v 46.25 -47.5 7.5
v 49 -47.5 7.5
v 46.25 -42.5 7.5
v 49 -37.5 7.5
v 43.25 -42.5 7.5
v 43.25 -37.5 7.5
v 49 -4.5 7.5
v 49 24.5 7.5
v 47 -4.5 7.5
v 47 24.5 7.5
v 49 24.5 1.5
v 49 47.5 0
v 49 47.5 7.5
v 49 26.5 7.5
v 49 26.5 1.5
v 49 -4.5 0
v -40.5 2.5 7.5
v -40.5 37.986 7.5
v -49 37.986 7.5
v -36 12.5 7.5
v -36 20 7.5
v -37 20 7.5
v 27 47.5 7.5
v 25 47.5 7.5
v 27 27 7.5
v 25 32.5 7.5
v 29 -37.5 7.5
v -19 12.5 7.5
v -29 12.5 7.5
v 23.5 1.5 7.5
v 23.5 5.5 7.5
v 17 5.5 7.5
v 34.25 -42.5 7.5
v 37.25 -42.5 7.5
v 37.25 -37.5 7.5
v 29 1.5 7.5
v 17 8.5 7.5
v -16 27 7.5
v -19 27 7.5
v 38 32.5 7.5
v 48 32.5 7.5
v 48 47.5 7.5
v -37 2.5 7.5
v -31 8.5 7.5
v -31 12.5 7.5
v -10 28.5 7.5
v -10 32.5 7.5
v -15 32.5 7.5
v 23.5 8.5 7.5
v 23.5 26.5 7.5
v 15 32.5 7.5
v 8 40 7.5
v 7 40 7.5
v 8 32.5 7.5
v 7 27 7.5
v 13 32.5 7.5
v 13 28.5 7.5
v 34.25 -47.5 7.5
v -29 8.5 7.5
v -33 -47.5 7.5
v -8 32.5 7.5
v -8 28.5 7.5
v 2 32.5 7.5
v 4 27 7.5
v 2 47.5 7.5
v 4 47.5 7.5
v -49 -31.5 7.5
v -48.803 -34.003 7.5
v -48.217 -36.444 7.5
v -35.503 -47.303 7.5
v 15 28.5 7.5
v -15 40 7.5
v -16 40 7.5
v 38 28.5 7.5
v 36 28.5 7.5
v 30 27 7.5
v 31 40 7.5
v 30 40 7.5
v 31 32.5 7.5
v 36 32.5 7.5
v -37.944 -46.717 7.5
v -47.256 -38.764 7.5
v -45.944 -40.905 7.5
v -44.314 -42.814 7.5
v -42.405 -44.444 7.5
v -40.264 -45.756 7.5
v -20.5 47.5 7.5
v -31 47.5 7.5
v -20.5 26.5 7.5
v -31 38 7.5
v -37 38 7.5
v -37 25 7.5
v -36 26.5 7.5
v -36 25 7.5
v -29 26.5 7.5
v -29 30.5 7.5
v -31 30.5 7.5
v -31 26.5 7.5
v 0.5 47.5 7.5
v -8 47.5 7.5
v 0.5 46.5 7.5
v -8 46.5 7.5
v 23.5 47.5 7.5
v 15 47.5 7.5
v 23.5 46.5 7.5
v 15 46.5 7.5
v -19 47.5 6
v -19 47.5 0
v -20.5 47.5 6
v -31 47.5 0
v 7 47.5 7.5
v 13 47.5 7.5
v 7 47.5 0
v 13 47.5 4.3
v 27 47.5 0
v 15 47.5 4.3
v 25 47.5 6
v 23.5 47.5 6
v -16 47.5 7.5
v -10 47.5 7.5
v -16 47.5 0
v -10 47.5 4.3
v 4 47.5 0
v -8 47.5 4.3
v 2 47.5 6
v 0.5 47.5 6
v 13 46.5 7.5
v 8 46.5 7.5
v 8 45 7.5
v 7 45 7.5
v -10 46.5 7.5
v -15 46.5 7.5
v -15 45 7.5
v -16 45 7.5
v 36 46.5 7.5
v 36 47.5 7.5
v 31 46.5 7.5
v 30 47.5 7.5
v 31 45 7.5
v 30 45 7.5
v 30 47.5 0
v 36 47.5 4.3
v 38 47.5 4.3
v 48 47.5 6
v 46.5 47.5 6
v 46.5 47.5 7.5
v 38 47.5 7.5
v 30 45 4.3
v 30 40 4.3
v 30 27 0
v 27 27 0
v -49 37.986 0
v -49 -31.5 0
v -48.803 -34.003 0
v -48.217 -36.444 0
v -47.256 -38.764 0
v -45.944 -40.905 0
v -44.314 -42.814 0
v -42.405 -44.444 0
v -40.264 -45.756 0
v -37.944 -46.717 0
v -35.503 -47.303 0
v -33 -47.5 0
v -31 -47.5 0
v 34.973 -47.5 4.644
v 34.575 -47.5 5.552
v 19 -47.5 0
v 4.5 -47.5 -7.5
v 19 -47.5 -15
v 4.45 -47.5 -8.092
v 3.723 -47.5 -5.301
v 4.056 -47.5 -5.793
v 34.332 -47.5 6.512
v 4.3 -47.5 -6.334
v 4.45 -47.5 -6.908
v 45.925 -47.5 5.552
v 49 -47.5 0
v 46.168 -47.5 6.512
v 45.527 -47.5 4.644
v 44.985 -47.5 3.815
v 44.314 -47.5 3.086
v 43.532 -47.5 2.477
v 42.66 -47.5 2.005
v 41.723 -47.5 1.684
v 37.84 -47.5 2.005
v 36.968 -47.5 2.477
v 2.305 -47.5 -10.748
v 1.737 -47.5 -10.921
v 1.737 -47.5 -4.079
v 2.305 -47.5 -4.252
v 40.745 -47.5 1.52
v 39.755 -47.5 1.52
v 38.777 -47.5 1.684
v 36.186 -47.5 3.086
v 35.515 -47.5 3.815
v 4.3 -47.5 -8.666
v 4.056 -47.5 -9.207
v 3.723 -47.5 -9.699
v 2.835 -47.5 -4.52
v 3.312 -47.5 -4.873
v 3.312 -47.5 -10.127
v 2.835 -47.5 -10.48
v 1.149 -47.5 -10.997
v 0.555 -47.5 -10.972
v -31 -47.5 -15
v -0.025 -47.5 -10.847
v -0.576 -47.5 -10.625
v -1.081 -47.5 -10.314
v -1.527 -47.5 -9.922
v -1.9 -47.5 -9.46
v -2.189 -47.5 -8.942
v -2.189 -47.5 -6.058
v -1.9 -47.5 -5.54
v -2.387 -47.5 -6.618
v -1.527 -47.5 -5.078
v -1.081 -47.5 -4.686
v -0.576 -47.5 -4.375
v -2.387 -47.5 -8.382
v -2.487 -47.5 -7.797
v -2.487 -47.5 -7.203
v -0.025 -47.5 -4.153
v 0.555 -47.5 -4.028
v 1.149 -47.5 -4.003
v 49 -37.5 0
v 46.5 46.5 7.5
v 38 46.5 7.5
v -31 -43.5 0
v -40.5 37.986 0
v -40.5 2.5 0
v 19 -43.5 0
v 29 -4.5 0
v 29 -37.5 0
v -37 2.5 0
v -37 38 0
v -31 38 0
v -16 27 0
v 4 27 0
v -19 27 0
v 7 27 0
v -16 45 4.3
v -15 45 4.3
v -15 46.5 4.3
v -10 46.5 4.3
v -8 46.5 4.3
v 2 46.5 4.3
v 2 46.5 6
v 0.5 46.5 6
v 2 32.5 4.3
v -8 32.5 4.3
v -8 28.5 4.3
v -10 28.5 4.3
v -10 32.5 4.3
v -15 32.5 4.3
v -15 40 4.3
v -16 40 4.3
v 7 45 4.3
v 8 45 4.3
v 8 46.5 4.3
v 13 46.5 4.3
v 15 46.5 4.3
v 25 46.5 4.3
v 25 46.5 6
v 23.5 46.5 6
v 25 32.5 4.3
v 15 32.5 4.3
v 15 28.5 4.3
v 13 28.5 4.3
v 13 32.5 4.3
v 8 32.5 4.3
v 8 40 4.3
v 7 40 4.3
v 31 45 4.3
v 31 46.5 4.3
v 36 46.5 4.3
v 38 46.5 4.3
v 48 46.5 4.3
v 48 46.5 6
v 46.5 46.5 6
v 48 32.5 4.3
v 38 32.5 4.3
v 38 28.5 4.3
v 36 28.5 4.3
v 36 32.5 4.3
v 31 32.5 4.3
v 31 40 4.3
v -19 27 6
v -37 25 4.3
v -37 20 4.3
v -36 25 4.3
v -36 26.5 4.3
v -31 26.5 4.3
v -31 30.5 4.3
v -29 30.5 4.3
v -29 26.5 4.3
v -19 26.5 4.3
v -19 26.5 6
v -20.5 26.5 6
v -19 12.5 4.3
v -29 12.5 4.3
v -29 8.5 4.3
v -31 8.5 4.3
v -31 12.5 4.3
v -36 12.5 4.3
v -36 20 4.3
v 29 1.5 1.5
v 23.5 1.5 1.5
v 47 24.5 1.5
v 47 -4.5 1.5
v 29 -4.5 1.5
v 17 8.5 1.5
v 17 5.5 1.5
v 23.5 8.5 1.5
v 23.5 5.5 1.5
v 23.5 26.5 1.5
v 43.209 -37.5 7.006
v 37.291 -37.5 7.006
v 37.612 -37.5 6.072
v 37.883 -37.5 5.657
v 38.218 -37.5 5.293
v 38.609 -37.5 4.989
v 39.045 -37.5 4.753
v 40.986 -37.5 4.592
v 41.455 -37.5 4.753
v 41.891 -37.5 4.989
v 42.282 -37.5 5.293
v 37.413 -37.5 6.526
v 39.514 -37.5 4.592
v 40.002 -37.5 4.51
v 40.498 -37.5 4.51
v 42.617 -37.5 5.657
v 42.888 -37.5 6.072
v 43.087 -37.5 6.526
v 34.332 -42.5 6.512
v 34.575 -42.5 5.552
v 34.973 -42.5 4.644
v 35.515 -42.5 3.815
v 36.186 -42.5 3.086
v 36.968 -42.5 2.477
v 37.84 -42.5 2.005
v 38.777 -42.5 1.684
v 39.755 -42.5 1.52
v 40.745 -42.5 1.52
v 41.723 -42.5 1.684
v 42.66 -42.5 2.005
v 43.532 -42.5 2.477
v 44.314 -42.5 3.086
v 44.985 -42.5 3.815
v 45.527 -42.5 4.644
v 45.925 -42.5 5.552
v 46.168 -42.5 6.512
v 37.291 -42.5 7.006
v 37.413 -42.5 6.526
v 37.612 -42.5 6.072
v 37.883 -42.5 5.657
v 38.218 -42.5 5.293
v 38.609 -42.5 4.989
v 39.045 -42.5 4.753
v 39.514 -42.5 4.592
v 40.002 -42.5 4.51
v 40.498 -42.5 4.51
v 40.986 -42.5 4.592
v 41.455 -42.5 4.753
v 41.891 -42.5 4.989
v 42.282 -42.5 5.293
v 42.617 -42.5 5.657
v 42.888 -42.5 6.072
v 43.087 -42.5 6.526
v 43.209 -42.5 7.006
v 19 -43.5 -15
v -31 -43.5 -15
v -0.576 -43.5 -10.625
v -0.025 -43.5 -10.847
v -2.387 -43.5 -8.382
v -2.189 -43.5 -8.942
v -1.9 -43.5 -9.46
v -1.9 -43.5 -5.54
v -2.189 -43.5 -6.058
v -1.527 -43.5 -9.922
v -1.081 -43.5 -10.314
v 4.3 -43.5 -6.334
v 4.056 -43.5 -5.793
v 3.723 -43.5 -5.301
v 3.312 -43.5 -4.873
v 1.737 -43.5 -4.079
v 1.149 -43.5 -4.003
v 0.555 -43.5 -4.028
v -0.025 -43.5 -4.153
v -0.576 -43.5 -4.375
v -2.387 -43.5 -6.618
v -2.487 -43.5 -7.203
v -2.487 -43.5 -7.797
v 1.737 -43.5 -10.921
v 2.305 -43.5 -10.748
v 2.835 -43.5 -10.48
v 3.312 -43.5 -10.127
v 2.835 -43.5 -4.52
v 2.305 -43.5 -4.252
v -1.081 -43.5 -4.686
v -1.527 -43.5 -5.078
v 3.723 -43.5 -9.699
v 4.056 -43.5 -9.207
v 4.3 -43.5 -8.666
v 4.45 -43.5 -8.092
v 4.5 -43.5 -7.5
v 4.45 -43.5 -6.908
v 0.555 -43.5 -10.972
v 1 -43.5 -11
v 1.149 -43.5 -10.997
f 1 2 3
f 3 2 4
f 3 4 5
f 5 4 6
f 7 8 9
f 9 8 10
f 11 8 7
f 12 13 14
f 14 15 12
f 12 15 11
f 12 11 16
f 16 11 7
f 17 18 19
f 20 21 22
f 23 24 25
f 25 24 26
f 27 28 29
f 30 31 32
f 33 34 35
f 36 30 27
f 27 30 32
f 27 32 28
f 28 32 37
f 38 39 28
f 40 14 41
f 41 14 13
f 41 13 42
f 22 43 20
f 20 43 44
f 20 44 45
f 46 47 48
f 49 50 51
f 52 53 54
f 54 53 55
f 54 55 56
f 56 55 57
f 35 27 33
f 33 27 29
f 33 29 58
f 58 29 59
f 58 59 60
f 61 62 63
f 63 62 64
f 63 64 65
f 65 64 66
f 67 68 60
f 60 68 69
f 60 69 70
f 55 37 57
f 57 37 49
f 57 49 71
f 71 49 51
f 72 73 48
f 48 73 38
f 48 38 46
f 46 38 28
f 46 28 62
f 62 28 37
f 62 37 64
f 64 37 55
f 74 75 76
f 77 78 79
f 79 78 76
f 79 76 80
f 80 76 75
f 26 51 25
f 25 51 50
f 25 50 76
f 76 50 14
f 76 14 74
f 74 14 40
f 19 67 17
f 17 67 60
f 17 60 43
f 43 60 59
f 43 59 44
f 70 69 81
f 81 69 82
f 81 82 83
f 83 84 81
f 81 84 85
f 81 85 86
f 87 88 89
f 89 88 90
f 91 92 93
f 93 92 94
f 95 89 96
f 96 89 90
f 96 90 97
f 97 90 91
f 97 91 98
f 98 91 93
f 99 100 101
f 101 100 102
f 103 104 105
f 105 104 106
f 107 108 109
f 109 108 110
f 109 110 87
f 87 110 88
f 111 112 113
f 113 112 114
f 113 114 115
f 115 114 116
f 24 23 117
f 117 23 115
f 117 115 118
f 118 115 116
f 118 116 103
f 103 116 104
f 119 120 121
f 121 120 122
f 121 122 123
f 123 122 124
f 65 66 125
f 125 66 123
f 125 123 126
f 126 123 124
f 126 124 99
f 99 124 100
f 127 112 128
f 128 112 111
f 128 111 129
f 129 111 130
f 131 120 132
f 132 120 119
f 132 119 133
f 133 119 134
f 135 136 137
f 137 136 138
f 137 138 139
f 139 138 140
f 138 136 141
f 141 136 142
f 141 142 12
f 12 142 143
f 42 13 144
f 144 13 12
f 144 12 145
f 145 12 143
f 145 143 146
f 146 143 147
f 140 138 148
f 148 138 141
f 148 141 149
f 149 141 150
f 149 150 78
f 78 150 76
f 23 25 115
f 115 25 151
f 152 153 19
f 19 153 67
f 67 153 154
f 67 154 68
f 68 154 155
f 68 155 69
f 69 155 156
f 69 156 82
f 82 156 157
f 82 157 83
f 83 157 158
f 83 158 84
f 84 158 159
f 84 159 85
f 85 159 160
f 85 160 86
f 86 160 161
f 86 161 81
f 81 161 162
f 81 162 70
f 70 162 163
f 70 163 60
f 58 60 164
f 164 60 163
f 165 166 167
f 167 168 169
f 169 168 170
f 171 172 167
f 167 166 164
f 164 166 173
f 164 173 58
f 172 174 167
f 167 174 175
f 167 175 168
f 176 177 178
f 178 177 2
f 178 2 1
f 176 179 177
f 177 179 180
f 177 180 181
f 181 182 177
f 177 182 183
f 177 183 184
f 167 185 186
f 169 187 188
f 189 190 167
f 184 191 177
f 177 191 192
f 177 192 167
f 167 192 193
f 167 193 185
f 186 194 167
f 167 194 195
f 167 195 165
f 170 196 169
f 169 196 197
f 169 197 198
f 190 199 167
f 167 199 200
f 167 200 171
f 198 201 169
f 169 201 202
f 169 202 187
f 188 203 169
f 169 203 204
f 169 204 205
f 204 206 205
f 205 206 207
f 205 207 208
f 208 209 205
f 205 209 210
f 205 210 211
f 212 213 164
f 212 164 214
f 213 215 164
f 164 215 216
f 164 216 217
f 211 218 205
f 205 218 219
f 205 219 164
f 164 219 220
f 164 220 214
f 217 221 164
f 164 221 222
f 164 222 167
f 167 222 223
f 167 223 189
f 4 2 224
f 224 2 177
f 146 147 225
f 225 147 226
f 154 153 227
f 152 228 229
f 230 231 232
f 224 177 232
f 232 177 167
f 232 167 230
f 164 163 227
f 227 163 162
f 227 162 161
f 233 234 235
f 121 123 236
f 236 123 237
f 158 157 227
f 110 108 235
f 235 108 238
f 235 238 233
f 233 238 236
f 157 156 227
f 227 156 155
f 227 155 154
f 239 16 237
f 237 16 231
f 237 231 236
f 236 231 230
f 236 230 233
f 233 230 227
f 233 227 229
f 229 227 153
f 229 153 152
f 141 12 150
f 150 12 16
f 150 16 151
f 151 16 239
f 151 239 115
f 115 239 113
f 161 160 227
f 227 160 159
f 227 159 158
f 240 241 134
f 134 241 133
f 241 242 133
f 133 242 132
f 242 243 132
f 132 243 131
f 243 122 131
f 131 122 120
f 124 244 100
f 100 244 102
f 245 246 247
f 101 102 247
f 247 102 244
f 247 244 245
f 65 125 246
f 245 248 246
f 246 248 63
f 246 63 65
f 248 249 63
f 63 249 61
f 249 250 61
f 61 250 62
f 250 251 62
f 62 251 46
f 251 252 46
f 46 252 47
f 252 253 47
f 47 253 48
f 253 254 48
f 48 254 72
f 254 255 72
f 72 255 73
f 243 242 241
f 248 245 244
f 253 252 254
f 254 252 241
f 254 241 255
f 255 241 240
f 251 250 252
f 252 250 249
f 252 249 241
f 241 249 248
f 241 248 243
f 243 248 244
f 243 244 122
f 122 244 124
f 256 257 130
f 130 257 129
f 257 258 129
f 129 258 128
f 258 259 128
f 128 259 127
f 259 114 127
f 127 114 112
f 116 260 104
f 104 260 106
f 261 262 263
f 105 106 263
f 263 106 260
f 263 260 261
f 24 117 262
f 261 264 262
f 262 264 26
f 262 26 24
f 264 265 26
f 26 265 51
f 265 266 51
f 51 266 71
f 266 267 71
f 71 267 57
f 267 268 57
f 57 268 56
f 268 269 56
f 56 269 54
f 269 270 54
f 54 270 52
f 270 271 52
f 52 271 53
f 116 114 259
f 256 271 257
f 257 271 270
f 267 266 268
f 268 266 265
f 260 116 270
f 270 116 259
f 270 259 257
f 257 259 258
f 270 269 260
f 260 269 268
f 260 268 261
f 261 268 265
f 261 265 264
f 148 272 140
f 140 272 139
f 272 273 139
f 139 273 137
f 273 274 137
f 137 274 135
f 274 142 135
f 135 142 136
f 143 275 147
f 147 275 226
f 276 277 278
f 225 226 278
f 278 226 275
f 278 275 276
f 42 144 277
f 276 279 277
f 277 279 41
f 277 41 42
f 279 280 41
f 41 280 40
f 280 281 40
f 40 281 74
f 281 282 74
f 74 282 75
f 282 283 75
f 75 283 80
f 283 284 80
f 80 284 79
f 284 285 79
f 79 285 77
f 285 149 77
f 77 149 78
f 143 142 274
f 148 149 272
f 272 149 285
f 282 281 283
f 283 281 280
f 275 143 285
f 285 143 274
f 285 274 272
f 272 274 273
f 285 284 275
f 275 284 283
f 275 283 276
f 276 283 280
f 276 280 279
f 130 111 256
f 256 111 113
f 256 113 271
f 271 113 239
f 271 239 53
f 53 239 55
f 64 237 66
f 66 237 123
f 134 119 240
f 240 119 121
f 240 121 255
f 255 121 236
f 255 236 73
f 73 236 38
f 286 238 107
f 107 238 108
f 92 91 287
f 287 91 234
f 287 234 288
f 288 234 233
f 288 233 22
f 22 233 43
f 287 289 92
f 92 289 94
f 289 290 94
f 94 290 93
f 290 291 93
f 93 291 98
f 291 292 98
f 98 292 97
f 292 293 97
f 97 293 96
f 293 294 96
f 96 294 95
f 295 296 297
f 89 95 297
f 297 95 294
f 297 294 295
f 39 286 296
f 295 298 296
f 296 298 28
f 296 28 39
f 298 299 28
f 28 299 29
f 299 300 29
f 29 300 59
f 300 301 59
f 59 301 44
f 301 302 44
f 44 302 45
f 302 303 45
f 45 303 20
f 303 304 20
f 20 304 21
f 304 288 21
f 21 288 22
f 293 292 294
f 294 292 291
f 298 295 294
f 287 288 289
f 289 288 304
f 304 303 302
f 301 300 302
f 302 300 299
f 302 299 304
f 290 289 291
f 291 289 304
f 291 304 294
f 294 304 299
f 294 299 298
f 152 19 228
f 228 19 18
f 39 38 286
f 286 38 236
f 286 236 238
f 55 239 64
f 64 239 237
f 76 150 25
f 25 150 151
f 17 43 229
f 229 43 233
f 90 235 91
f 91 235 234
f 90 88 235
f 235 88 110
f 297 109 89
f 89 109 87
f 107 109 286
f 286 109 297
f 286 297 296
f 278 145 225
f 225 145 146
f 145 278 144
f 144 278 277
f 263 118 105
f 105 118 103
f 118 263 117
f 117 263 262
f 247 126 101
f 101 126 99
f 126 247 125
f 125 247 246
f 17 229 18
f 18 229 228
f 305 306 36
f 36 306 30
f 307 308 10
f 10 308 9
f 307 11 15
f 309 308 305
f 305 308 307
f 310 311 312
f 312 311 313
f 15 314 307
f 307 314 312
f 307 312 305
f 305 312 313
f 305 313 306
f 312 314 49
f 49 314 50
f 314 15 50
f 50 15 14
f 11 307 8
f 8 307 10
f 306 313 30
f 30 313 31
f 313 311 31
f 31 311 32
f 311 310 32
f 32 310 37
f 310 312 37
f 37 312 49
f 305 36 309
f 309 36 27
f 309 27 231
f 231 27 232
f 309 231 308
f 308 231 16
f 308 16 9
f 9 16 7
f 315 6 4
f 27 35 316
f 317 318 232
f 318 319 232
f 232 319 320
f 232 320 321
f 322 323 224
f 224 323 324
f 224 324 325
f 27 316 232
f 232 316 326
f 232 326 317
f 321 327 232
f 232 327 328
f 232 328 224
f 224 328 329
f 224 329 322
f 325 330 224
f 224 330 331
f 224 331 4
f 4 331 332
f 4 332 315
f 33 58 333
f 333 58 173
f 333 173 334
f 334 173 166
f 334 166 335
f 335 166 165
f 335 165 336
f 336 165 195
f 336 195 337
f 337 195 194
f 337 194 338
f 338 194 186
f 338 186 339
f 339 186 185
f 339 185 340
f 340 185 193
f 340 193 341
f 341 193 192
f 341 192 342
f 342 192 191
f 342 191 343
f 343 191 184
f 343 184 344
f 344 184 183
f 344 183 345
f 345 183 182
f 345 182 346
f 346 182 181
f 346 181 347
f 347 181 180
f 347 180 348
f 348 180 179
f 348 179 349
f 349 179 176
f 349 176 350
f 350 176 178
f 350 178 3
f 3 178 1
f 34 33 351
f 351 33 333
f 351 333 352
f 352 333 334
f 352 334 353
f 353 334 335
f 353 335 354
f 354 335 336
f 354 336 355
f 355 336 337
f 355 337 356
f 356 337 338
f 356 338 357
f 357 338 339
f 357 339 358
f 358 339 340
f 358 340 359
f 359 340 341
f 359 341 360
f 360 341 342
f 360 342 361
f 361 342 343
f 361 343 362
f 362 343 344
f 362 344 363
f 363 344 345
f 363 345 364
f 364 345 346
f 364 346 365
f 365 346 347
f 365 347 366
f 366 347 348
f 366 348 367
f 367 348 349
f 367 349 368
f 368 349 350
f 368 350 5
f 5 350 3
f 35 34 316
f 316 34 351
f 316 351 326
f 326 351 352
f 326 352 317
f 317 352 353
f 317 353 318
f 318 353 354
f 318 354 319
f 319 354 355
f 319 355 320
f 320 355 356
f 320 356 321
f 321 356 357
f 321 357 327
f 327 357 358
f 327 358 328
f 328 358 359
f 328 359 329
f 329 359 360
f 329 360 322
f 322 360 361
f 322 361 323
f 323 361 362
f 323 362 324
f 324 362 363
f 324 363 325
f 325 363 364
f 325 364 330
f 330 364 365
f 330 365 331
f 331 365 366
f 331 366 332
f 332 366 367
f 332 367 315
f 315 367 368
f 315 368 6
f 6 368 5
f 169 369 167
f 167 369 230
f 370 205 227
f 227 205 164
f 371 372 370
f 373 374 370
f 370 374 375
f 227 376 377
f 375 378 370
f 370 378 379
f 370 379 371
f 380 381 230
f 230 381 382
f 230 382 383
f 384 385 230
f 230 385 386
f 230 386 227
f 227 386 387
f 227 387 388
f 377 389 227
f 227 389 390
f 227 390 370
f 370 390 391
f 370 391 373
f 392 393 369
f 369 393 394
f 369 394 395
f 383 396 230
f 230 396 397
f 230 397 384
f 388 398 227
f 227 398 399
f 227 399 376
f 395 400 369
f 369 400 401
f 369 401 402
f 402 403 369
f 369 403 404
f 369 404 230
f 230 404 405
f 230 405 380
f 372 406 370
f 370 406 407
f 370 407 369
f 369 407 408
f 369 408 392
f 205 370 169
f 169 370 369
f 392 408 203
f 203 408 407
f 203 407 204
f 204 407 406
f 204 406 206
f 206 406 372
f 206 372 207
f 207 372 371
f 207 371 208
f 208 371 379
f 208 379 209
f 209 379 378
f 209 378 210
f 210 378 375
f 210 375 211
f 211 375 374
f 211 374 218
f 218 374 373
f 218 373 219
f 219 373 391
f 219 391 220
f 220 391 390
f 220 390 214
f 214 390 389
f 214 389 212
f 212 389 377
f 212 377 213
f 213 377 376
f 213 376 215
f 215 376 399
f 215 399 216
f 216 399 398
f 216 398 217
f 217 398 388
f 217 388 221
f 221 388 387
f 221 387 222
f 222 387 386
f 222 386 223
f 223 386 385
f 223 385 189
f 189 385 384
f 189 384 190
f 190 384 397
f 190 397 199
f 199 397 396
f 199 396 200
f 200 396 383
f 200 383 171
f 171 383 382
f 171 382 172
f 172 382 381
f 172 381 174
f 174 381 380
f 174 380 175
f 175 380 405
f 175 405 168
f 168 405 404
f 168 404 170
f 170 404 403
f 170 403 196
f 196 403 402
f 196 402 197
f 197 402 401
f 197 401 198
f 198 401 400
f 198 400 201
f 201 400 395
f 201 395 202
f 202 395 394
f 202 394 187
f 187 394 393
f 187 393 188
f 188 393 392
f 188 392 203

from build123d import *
from OCP.BRepAlgoAPI import BRepAlgoAPI_Cut
from OCP.TopTools import TopTools_ListOfShape
from build123d.topology import SkipClean

# Parameters (mm, degrees)
BOSS_EXTRUDE1_DEPTH = 7.5
CUT_EXTRUDE1_DEPTH  = 3.2
CUT_EXTRUDE4_REACH  = 70.655
SKETCH5_W           = 3
SKETCH5_H           = 17
CUT_EXTRUDE5_REACH  = 70.655
SKETCH8_W           = 12
SKETCH8_H           = 37
CUT_EXTRUDE6_DEPTH  = 3.2
SKETCH10_W          = 10
SKETCH10_H          = 7.5
BOSS_EXTRUDE2_DEPTH = 27.486353186
SKETCH11_W          = 3
SKETCH11_H          = 7.5
CUT_EXTRUDE7_DEPTH  = 3.5
SKETCH12_W          = 2
SKETCH12_H          = 7.5
CUT_EXTRUDE8_DEPTH  = 4
SKETCH13_W          = 2
SKETCH13_H          = 7.5
CUT_EXTRUDE9_DEPTH  = 4
SKETCH14_W          = 7.5
SKETCH14_H          = 9.5
CUT_EXTRUDE10_DEPTH = 6
SKETCH15_W          = 1.5
SKETCH15_H          = 21
SKETCH15_H_2        = 1
CUT_EXTRUDE11_DEPTH = 1.5
SKETCH16_W          = 1.5
SKETCH16_H          = 7.5
CUT_EXTRUDE12_DEPTH = 35.486360958
CUT_EXTRUDE13_DEPTH = 6
SKETCH19_W          = 17.5
SKETCH19_H          = 32
BOSS_EXTRUDE3_DEPTH = 7.5
CUT_EXTRUDE14_DEPTH = 6
SKETCH20_W          = 18
SKETCH20_H          = 6
CUT_EXTRUDE15_DEPTH = 6
SKETCH21_W          = 20
SKETCH21_H          = 33
CUT_EXTRUDE16_DEPTH = 11
CUT_EXTRUDE17_DEPTH = 5
CUT_EXTRUDE18_DEPTH = 10
SKETCH23_W          = 50
SKETCH23_H          = 4
BOSS_EXTRUDE4_DEPTH = 15
SKETCH25_R          = 3.5
CUT_EXTRUDE19_DEPTH = 10


with BuildPart() as part:
    # Sketch1 → Boss-Extrude1 (new body)
    with BuildSketch(Plane.XY):
        with BuildLine():
            Line((-33, -47.5), (49, -47.5))
            Line((49, -47.5), (49, -29.5))
            Line((49, -29.5), (31.5, -29.5))
            Line((31.5, -29.5), (31.5, 2.5))
            Line((31.5, 2.5), (49, 2.5))
            Line((49, 2.5), (49, 47.5))
            Line((49, 47.5), (30, 47.5))
            Line((30, 47.5), (30, 30.5))
            Line((30, 30.5), (27, 30.5))
            Line((27, 30.5), (27, 47.5))
            Line((27, 47.5), (-49, 47.5))
            Line((-49, 47.5), (-49, -31.5))
            ThreePointArc((-49, -31.5), (-44.313708499, -42.813708499), (-33, -47.5))
        make_face()
    extrude(amount=BOSS_EXTRUDE1_DEPTH)

    # Sketch2 → Cut-Extrude1 (cut)
    with BuildSketch(Plane.XY.offset(7.5)):
        Polygon((30, 40), (31, 40), (31, 32.5), (36, 32.5), (36, 28.5), (38, 28.5), (38, 32.5), (48, 32.5), (48, 46.5), (38, 46.5), (38, 47.5), (36, 47.5), (36, 46.5), (31, 46.5), (31, 45), (30, 45), align=None)
        Polygon((-16, 40), (-15, 40), (-15, 32.5), (-10, 32.5), (-10, 28.5), (-8, 28.5), (-8, 32.5), (2, 32.5), (2, 46.5), (-8, 46.5), (-8, 47.5), (-10, 47.5), (-10, 46.5), (-15, 46.5), (-15, 45), (-16, 45), align=None)
        Polygon((7, 40), (8, 40), (8, 32.5), (13, 32.5), (13, 28.5), (15, 28.5), (15, 32.5), (25, 32.5), (25, 46.5), (15, 46.5), (15, 47.5), (13, 47.5), (13, 46.5), (8, 46.5), (8, 45), (7, 45), align=None)
    extrude(amount=-CUT_EXTRUDE1_DEPTH, mode=Mode.SUBTRACT)

    # Sketch5 → Cut-Extrude4 (cut, up to next)
    with BuildSketch(Plane.XY.offset(7.5), mode=Mode.PRIVATE) as cut_extrude4_sk1:
        with Locations((5.5, 39)):
            Rectangle(SKETCH5_W, SKETCH5_H)
    cut_extrude4_tool1 = extrude(cut_extrude4_sk1.sketch, amount=-CUT_EXTRUDE4_REACH, mode=Mode.PRIVATE) & part.part
    # Sketch5 → Cut-Extrude4 (cut, up to next)
    with BuildSketch(Plane.XY.offset(7.5), mode=Mode.PRIVATE) as cut_extrude4_sk2:
        with Locations((-17.5, 39)):
            Rectangle(SKETCH5_W, SKETCH5_H)
    cut_extrude4_tool2 = extrude(cut_extrude4_sk2.sketch, amount=-CUT_EXTRUDE4_REACH, mode=Mode.PRIVATE) & part.part
    add(cut_extrude4_tool1.solids().sort_by_distance((5.5, 39, 7.5))[0], mode=Mode.SUBTRACT)
    add(cut_extrude4_tool2.solids().sort_by_distance((-17.5, 39, 7.5))[0], mode=Mode.SUBTRACT)

    # Sketch8 → Cut-Extrude5 (cut, up to next)
    with BuildSketch(Plane.XY.offset(7.5), mode=Mode.PRIVATE) as cut_extrude5_sk1:
        with Locations((-43, 29)):
            Rectangle(SKETCH8_W, SKETCH8_H)
    cut_extrude5_tool1 = extrude(cut_extrude5_sk1.sketch, amount=-CUT_EXTRUDE5_REACH, mode=Mode.PRIVATE) & part.part
    add(cut_extrude5_tool1.solids().sort_by_distance((-43, 29, 7.5))[0], mode=Mode.SUBTRACT)

    # Sketch9 → Cut-Extrude6 (cut)
    with BuildSketch(Plane.XY.offset(7.5)):
        Polygon((-37, 20), (-36, 20), (-36, 12.5), (-31, 12.5), (-31, 8.5), (-29, 8.5), (-29, 12.5), (-19, 12.5), (-19, 26.5), (-29, 26.5), (-29, 30.5), (-31, 30.5), (-31, 26.5), (-36, 26.5), (-36, 25), (-37, 25), align=None)
    extrude(amount=-CUT_EXTRUDE6_DEPTH, mode=Mode.SUBTRACT)

    # Sketch10 → Boss-Extrude2 (add)
    with BuildSketch(Plane(origin=(0, 10.5, 0), x_dir=(1, 0, 0), z_dir=(0, 1, 0))):
        with Locations((-44, -3.75)):
            Rectangle(SKETCH10_W, SKETCH10_H)
    extrude(amount=BOSS_EXTRUDE2_DEPTH)

    # Sketch11 → Cut-Extrude7 (cut)
    with BuildSketch(Plane(origin=(0, 30.5, 0), x_dir=(1, 0, 0), z_dir=(0, 1, 0))):
        with Locations((-17.5, -3.75)):
            Rectangle(SKETCH11_W, SKETCH11_H)
        with Locations((5.5, -3.75)):
            Rectangle(SKETCH11_W, SKETCH11_H)
        with Locations((28.5, -3.75)):
            Rectangle(SKETCH11_W, SKETCH11_H)
    extrude(amount=-CUT_EXTRUDE7_DEPTH, mode=Mode.SUBTRACT)

    # Sketch12 → Cut-Extrude8 (cut)
    with BuildSketch(Plane(origin=(0, 10.5, 0), x_dir=(1, 0, 0), z_dir=(0, 1, 0))):
        with Locations((-38, -3.75)):
            Rectangle(SKETCH12_W, SKETCH12_H)
    extrude(amount=-CUT_EXTRUDE8_DEPTH, mode=Mode.SUBTRACT)

    # Sketch13 → Cut-Extrude9 (cut)
    with BuildSketch(Plane(origin=(0, 6.5, 0), x_dir=(1, 0, 0), z_dir=(0, 1, 0))):
        with Locations((-38, -3.75)):
            Rectangle(SKETCH13_W, SKETCH13_H)
    extrude(amount=-CUT_EXTRUDE9_DEPTH, mode=Mode.SUBTRACT)

    # Sketch14 → Cut-Extrude10 (cut)
    with BuildSketch(Plane.ZY.offset(37)):
        with Locations((3.75, 42.75)):
            Rectangle(SKETCH14_W, SKETCH14_H)
    extrude(amount=-CUT_EXTRUDE10_DEPTH, mode=Mode.SUBTRACT)

    # Sketch15 → Cut-Extrude11 (cut)
    with BuildSketch(Plane.XY.offset(7.5)):
        with Locations((-19.75, 37)):
            Rectangle(SKETCH15_W, SKETCH15_H)
        with Locations((1.25, 47)):
            Rectangle(SKETCH15_W, SKETCH15_H_2)
        with Locations((24.25, 47)):
            Rectangle(SKETCH15_W, SKETCH15_H_2)
        with Locations((47.25, 47)):
            Rectangle(SKETCH15_W, SKETCH15_H_2)
    extrude(amount=-CUT_EXTRUDE11_DEPTH, mode=Mode.SUBTRACT)


with BuildPart() as cut_extrude12_tool:
    # Sketch16 → Cut-Extrude12 (new body)
    with BuildSketch(Plane(origin=(0, 37.986353186, 0), x_dir=(1, 0, 0), z_dir=(0, 1, 0))):
        with Locations((-39.75, -3.75)):
            Rectangle(SKETCH16_W, SKETCH16_H)
    extrude(amount=-CUT_EXTRUDE12_DEPTH)


with BuildPart() as part_1:
    add(part.part)

    # Cut-Extrude12: cut by cut_extrude12_tool, with a tolerance
    cut_extrude12_stock = TopTools_ListOfShape()
    cut_extrude12_stock.Append(part_1.part.wrapped)
    cut_extrude12_tools = TopTools_ListOfShape()
    cut_extrude12_tools.Append(cut_extrude12_tool.part.wrapped)
    cut_extrude12_cut = BRepAlgoAPI_Cut()
    cut_extrude12_cut.SetArguments(cut_extrude12_stock)
    cut_extrude12_cut.SetTools(cut_extrude12_tools)
    cut_extrude12_cut.SetFuzzyValue(0.00001)
    cut_extrude12_cut.Build()
    add(Compound.cast(cut_extrude12_cut.Shape()).solids(), mode=Mode.REPLACE)

    # Sketch18 → Cut-Extrude13 (cut)
    with SkipClean():  # the faces are left unmerged after this step: merging them gives an invalid solid
        with BuildSketch(Plane.XY.offset(7.5)):
            Polygon((23.5, 5.5), (23.5, 1.5), (47, 1.5), (47, 24.5), (49, 24.5), (49, 26.5), (47, 26.5), (23.5, 26.5), (23.5, 8.5), (17, 8.5), (17, 5.5), align=None)
        extrude(amount=-CUT_EXTRUDE13_DEPTH, mode=Mode.SUBTRACT)

    # Sketch19 → Boss-Extrude3 (add)
    with SkipClean():  # the faces are left unmerged after this step: merging them gives an invalid solid
        with BuildSketch(Plane(origin=(0, 0, 0), x_dir=(-1, 0, 0), z_dir=(0, 0, -1))):
            with Locations((-40.25, -13.5)):
                Rectangle(SKETCH19_W, SKETCH19_H)
        extrude(amount=-BOSS_EXTRUDE3_DEPTH)

    # Sketch18<2> → Cut-Extrude14 (cut)
    with SkipClean():  # the faces are left unmerged after this step: merging them gives an invalid solid
        with BuildSketch(Plane.XY.offset(7.5)):
            Polygon((23.5, 5.5), (23.5, 1.5), (47, 1.5), (47, 24.5), (49, 24.5), (49, 26.5), (47, 26.5), (23.5, 26.5), (23.5, 8.5), (17, 8.5), (17, 5.5), align=None)
        extrude(amount=-CUT_EXTRUDE14_DEPTH, mode=Mode.SUBTRACT)

    # Sketch20 → Cut-Extrude15 (cut)
    with SkipClean():  # the faces are left unmerged after this step: merging them gives an invalid solid
        with BuildSketch(Plane.XY.offset(7.5)):
            with Locations((38, -1.5)):
                Rectangle(SKETCH20_W, SKETCH20_H)
        extrude(amount=-CUT_EXTRUDE15_DEPTH, mode=Mode.SUBTRACT)

    # Sketch21 → Cut-Extrude16 (cut)
    with SkipClean():  # the faces are left unmerged after this step: merging them gives an invalid solid
        with BuildSketch(Plane.XY.offset(7.5)):
            with Locations((39, -21)):
                Rectangle(SKETCH21_W, SKETCH21_H)
        extrude(amount=-CUT_EXTRUDE16_DEPTH, mode=Mode.SUBTRACT)

    # Sketch3 → Cut-Extrude17 (cut)
    with SkipClean():  # the faces are left unmerged after this step: merging them gives an invalid solid
        with BuildSketch(Plane.XZ.offset(47.5)):
            with BuildLine():
                Line((34.25, 7.5), (46.25, 7.5))
                ThreePointArc((46.25, 7.5), (40.25, 1.5), (34.25, 7.5))
            make_face()
        extrude(amount=-CUT_EXTRUDE17_DEPTH, mode=Mode.SUBTRACT)

    # Sketch22 → Cut-Extrude18 (cut)
    with SkipClean():  # the faces are left unmerged after this step: merging them gives an invalid solid
        with BuildSketch(Plane.XZ.offset(42.5)):
            with BuildLine():
                Line((37.25, 7.5), (43.25, 7.5))
                ThreePointArc((43.25, 7.5), (40.25, 4.5), (37.25, 7.5))
            make_face()
        extrude(amount=-CUT_EXTRUDE18_DEPTH, mode=Mode.SUBTRACT)

    # Sketch23 → Boss-Extrude4 (add)
    with SkipClean():  # the faces are left unmerged after this step: merging them gives an invalid solid
        with BuildSketch(Plane(origin=(0, 0, 0), x_dir=(-1, 0, 0), z_dir=(0, 0, -1))):
            with Locations((6, -45.5)):
                Rectangle(SKETCH23_W, SKETCH23_H)
        extrude(amount=BOSS_EXTRUDE4_DEPTH)

    # Sketch25 → Cut-Extrude19 (cut)
    with SkipClean():  # the faces are left unmerged after this step: merging them gives an invalid solid
        with BuildSketch(Plane(origin=(0, -47.5, 0), x_dir=(-1, 0, 0), z_dir=(0, -1, 0))):
            with Locations((-1, 7.5)):
                Circle(SKETCH25_R)
        extrude(amount=-CUT_EXTRUDE19_DEPTH, mode=Mode.SUBTRACT)


solid = part_1.part
